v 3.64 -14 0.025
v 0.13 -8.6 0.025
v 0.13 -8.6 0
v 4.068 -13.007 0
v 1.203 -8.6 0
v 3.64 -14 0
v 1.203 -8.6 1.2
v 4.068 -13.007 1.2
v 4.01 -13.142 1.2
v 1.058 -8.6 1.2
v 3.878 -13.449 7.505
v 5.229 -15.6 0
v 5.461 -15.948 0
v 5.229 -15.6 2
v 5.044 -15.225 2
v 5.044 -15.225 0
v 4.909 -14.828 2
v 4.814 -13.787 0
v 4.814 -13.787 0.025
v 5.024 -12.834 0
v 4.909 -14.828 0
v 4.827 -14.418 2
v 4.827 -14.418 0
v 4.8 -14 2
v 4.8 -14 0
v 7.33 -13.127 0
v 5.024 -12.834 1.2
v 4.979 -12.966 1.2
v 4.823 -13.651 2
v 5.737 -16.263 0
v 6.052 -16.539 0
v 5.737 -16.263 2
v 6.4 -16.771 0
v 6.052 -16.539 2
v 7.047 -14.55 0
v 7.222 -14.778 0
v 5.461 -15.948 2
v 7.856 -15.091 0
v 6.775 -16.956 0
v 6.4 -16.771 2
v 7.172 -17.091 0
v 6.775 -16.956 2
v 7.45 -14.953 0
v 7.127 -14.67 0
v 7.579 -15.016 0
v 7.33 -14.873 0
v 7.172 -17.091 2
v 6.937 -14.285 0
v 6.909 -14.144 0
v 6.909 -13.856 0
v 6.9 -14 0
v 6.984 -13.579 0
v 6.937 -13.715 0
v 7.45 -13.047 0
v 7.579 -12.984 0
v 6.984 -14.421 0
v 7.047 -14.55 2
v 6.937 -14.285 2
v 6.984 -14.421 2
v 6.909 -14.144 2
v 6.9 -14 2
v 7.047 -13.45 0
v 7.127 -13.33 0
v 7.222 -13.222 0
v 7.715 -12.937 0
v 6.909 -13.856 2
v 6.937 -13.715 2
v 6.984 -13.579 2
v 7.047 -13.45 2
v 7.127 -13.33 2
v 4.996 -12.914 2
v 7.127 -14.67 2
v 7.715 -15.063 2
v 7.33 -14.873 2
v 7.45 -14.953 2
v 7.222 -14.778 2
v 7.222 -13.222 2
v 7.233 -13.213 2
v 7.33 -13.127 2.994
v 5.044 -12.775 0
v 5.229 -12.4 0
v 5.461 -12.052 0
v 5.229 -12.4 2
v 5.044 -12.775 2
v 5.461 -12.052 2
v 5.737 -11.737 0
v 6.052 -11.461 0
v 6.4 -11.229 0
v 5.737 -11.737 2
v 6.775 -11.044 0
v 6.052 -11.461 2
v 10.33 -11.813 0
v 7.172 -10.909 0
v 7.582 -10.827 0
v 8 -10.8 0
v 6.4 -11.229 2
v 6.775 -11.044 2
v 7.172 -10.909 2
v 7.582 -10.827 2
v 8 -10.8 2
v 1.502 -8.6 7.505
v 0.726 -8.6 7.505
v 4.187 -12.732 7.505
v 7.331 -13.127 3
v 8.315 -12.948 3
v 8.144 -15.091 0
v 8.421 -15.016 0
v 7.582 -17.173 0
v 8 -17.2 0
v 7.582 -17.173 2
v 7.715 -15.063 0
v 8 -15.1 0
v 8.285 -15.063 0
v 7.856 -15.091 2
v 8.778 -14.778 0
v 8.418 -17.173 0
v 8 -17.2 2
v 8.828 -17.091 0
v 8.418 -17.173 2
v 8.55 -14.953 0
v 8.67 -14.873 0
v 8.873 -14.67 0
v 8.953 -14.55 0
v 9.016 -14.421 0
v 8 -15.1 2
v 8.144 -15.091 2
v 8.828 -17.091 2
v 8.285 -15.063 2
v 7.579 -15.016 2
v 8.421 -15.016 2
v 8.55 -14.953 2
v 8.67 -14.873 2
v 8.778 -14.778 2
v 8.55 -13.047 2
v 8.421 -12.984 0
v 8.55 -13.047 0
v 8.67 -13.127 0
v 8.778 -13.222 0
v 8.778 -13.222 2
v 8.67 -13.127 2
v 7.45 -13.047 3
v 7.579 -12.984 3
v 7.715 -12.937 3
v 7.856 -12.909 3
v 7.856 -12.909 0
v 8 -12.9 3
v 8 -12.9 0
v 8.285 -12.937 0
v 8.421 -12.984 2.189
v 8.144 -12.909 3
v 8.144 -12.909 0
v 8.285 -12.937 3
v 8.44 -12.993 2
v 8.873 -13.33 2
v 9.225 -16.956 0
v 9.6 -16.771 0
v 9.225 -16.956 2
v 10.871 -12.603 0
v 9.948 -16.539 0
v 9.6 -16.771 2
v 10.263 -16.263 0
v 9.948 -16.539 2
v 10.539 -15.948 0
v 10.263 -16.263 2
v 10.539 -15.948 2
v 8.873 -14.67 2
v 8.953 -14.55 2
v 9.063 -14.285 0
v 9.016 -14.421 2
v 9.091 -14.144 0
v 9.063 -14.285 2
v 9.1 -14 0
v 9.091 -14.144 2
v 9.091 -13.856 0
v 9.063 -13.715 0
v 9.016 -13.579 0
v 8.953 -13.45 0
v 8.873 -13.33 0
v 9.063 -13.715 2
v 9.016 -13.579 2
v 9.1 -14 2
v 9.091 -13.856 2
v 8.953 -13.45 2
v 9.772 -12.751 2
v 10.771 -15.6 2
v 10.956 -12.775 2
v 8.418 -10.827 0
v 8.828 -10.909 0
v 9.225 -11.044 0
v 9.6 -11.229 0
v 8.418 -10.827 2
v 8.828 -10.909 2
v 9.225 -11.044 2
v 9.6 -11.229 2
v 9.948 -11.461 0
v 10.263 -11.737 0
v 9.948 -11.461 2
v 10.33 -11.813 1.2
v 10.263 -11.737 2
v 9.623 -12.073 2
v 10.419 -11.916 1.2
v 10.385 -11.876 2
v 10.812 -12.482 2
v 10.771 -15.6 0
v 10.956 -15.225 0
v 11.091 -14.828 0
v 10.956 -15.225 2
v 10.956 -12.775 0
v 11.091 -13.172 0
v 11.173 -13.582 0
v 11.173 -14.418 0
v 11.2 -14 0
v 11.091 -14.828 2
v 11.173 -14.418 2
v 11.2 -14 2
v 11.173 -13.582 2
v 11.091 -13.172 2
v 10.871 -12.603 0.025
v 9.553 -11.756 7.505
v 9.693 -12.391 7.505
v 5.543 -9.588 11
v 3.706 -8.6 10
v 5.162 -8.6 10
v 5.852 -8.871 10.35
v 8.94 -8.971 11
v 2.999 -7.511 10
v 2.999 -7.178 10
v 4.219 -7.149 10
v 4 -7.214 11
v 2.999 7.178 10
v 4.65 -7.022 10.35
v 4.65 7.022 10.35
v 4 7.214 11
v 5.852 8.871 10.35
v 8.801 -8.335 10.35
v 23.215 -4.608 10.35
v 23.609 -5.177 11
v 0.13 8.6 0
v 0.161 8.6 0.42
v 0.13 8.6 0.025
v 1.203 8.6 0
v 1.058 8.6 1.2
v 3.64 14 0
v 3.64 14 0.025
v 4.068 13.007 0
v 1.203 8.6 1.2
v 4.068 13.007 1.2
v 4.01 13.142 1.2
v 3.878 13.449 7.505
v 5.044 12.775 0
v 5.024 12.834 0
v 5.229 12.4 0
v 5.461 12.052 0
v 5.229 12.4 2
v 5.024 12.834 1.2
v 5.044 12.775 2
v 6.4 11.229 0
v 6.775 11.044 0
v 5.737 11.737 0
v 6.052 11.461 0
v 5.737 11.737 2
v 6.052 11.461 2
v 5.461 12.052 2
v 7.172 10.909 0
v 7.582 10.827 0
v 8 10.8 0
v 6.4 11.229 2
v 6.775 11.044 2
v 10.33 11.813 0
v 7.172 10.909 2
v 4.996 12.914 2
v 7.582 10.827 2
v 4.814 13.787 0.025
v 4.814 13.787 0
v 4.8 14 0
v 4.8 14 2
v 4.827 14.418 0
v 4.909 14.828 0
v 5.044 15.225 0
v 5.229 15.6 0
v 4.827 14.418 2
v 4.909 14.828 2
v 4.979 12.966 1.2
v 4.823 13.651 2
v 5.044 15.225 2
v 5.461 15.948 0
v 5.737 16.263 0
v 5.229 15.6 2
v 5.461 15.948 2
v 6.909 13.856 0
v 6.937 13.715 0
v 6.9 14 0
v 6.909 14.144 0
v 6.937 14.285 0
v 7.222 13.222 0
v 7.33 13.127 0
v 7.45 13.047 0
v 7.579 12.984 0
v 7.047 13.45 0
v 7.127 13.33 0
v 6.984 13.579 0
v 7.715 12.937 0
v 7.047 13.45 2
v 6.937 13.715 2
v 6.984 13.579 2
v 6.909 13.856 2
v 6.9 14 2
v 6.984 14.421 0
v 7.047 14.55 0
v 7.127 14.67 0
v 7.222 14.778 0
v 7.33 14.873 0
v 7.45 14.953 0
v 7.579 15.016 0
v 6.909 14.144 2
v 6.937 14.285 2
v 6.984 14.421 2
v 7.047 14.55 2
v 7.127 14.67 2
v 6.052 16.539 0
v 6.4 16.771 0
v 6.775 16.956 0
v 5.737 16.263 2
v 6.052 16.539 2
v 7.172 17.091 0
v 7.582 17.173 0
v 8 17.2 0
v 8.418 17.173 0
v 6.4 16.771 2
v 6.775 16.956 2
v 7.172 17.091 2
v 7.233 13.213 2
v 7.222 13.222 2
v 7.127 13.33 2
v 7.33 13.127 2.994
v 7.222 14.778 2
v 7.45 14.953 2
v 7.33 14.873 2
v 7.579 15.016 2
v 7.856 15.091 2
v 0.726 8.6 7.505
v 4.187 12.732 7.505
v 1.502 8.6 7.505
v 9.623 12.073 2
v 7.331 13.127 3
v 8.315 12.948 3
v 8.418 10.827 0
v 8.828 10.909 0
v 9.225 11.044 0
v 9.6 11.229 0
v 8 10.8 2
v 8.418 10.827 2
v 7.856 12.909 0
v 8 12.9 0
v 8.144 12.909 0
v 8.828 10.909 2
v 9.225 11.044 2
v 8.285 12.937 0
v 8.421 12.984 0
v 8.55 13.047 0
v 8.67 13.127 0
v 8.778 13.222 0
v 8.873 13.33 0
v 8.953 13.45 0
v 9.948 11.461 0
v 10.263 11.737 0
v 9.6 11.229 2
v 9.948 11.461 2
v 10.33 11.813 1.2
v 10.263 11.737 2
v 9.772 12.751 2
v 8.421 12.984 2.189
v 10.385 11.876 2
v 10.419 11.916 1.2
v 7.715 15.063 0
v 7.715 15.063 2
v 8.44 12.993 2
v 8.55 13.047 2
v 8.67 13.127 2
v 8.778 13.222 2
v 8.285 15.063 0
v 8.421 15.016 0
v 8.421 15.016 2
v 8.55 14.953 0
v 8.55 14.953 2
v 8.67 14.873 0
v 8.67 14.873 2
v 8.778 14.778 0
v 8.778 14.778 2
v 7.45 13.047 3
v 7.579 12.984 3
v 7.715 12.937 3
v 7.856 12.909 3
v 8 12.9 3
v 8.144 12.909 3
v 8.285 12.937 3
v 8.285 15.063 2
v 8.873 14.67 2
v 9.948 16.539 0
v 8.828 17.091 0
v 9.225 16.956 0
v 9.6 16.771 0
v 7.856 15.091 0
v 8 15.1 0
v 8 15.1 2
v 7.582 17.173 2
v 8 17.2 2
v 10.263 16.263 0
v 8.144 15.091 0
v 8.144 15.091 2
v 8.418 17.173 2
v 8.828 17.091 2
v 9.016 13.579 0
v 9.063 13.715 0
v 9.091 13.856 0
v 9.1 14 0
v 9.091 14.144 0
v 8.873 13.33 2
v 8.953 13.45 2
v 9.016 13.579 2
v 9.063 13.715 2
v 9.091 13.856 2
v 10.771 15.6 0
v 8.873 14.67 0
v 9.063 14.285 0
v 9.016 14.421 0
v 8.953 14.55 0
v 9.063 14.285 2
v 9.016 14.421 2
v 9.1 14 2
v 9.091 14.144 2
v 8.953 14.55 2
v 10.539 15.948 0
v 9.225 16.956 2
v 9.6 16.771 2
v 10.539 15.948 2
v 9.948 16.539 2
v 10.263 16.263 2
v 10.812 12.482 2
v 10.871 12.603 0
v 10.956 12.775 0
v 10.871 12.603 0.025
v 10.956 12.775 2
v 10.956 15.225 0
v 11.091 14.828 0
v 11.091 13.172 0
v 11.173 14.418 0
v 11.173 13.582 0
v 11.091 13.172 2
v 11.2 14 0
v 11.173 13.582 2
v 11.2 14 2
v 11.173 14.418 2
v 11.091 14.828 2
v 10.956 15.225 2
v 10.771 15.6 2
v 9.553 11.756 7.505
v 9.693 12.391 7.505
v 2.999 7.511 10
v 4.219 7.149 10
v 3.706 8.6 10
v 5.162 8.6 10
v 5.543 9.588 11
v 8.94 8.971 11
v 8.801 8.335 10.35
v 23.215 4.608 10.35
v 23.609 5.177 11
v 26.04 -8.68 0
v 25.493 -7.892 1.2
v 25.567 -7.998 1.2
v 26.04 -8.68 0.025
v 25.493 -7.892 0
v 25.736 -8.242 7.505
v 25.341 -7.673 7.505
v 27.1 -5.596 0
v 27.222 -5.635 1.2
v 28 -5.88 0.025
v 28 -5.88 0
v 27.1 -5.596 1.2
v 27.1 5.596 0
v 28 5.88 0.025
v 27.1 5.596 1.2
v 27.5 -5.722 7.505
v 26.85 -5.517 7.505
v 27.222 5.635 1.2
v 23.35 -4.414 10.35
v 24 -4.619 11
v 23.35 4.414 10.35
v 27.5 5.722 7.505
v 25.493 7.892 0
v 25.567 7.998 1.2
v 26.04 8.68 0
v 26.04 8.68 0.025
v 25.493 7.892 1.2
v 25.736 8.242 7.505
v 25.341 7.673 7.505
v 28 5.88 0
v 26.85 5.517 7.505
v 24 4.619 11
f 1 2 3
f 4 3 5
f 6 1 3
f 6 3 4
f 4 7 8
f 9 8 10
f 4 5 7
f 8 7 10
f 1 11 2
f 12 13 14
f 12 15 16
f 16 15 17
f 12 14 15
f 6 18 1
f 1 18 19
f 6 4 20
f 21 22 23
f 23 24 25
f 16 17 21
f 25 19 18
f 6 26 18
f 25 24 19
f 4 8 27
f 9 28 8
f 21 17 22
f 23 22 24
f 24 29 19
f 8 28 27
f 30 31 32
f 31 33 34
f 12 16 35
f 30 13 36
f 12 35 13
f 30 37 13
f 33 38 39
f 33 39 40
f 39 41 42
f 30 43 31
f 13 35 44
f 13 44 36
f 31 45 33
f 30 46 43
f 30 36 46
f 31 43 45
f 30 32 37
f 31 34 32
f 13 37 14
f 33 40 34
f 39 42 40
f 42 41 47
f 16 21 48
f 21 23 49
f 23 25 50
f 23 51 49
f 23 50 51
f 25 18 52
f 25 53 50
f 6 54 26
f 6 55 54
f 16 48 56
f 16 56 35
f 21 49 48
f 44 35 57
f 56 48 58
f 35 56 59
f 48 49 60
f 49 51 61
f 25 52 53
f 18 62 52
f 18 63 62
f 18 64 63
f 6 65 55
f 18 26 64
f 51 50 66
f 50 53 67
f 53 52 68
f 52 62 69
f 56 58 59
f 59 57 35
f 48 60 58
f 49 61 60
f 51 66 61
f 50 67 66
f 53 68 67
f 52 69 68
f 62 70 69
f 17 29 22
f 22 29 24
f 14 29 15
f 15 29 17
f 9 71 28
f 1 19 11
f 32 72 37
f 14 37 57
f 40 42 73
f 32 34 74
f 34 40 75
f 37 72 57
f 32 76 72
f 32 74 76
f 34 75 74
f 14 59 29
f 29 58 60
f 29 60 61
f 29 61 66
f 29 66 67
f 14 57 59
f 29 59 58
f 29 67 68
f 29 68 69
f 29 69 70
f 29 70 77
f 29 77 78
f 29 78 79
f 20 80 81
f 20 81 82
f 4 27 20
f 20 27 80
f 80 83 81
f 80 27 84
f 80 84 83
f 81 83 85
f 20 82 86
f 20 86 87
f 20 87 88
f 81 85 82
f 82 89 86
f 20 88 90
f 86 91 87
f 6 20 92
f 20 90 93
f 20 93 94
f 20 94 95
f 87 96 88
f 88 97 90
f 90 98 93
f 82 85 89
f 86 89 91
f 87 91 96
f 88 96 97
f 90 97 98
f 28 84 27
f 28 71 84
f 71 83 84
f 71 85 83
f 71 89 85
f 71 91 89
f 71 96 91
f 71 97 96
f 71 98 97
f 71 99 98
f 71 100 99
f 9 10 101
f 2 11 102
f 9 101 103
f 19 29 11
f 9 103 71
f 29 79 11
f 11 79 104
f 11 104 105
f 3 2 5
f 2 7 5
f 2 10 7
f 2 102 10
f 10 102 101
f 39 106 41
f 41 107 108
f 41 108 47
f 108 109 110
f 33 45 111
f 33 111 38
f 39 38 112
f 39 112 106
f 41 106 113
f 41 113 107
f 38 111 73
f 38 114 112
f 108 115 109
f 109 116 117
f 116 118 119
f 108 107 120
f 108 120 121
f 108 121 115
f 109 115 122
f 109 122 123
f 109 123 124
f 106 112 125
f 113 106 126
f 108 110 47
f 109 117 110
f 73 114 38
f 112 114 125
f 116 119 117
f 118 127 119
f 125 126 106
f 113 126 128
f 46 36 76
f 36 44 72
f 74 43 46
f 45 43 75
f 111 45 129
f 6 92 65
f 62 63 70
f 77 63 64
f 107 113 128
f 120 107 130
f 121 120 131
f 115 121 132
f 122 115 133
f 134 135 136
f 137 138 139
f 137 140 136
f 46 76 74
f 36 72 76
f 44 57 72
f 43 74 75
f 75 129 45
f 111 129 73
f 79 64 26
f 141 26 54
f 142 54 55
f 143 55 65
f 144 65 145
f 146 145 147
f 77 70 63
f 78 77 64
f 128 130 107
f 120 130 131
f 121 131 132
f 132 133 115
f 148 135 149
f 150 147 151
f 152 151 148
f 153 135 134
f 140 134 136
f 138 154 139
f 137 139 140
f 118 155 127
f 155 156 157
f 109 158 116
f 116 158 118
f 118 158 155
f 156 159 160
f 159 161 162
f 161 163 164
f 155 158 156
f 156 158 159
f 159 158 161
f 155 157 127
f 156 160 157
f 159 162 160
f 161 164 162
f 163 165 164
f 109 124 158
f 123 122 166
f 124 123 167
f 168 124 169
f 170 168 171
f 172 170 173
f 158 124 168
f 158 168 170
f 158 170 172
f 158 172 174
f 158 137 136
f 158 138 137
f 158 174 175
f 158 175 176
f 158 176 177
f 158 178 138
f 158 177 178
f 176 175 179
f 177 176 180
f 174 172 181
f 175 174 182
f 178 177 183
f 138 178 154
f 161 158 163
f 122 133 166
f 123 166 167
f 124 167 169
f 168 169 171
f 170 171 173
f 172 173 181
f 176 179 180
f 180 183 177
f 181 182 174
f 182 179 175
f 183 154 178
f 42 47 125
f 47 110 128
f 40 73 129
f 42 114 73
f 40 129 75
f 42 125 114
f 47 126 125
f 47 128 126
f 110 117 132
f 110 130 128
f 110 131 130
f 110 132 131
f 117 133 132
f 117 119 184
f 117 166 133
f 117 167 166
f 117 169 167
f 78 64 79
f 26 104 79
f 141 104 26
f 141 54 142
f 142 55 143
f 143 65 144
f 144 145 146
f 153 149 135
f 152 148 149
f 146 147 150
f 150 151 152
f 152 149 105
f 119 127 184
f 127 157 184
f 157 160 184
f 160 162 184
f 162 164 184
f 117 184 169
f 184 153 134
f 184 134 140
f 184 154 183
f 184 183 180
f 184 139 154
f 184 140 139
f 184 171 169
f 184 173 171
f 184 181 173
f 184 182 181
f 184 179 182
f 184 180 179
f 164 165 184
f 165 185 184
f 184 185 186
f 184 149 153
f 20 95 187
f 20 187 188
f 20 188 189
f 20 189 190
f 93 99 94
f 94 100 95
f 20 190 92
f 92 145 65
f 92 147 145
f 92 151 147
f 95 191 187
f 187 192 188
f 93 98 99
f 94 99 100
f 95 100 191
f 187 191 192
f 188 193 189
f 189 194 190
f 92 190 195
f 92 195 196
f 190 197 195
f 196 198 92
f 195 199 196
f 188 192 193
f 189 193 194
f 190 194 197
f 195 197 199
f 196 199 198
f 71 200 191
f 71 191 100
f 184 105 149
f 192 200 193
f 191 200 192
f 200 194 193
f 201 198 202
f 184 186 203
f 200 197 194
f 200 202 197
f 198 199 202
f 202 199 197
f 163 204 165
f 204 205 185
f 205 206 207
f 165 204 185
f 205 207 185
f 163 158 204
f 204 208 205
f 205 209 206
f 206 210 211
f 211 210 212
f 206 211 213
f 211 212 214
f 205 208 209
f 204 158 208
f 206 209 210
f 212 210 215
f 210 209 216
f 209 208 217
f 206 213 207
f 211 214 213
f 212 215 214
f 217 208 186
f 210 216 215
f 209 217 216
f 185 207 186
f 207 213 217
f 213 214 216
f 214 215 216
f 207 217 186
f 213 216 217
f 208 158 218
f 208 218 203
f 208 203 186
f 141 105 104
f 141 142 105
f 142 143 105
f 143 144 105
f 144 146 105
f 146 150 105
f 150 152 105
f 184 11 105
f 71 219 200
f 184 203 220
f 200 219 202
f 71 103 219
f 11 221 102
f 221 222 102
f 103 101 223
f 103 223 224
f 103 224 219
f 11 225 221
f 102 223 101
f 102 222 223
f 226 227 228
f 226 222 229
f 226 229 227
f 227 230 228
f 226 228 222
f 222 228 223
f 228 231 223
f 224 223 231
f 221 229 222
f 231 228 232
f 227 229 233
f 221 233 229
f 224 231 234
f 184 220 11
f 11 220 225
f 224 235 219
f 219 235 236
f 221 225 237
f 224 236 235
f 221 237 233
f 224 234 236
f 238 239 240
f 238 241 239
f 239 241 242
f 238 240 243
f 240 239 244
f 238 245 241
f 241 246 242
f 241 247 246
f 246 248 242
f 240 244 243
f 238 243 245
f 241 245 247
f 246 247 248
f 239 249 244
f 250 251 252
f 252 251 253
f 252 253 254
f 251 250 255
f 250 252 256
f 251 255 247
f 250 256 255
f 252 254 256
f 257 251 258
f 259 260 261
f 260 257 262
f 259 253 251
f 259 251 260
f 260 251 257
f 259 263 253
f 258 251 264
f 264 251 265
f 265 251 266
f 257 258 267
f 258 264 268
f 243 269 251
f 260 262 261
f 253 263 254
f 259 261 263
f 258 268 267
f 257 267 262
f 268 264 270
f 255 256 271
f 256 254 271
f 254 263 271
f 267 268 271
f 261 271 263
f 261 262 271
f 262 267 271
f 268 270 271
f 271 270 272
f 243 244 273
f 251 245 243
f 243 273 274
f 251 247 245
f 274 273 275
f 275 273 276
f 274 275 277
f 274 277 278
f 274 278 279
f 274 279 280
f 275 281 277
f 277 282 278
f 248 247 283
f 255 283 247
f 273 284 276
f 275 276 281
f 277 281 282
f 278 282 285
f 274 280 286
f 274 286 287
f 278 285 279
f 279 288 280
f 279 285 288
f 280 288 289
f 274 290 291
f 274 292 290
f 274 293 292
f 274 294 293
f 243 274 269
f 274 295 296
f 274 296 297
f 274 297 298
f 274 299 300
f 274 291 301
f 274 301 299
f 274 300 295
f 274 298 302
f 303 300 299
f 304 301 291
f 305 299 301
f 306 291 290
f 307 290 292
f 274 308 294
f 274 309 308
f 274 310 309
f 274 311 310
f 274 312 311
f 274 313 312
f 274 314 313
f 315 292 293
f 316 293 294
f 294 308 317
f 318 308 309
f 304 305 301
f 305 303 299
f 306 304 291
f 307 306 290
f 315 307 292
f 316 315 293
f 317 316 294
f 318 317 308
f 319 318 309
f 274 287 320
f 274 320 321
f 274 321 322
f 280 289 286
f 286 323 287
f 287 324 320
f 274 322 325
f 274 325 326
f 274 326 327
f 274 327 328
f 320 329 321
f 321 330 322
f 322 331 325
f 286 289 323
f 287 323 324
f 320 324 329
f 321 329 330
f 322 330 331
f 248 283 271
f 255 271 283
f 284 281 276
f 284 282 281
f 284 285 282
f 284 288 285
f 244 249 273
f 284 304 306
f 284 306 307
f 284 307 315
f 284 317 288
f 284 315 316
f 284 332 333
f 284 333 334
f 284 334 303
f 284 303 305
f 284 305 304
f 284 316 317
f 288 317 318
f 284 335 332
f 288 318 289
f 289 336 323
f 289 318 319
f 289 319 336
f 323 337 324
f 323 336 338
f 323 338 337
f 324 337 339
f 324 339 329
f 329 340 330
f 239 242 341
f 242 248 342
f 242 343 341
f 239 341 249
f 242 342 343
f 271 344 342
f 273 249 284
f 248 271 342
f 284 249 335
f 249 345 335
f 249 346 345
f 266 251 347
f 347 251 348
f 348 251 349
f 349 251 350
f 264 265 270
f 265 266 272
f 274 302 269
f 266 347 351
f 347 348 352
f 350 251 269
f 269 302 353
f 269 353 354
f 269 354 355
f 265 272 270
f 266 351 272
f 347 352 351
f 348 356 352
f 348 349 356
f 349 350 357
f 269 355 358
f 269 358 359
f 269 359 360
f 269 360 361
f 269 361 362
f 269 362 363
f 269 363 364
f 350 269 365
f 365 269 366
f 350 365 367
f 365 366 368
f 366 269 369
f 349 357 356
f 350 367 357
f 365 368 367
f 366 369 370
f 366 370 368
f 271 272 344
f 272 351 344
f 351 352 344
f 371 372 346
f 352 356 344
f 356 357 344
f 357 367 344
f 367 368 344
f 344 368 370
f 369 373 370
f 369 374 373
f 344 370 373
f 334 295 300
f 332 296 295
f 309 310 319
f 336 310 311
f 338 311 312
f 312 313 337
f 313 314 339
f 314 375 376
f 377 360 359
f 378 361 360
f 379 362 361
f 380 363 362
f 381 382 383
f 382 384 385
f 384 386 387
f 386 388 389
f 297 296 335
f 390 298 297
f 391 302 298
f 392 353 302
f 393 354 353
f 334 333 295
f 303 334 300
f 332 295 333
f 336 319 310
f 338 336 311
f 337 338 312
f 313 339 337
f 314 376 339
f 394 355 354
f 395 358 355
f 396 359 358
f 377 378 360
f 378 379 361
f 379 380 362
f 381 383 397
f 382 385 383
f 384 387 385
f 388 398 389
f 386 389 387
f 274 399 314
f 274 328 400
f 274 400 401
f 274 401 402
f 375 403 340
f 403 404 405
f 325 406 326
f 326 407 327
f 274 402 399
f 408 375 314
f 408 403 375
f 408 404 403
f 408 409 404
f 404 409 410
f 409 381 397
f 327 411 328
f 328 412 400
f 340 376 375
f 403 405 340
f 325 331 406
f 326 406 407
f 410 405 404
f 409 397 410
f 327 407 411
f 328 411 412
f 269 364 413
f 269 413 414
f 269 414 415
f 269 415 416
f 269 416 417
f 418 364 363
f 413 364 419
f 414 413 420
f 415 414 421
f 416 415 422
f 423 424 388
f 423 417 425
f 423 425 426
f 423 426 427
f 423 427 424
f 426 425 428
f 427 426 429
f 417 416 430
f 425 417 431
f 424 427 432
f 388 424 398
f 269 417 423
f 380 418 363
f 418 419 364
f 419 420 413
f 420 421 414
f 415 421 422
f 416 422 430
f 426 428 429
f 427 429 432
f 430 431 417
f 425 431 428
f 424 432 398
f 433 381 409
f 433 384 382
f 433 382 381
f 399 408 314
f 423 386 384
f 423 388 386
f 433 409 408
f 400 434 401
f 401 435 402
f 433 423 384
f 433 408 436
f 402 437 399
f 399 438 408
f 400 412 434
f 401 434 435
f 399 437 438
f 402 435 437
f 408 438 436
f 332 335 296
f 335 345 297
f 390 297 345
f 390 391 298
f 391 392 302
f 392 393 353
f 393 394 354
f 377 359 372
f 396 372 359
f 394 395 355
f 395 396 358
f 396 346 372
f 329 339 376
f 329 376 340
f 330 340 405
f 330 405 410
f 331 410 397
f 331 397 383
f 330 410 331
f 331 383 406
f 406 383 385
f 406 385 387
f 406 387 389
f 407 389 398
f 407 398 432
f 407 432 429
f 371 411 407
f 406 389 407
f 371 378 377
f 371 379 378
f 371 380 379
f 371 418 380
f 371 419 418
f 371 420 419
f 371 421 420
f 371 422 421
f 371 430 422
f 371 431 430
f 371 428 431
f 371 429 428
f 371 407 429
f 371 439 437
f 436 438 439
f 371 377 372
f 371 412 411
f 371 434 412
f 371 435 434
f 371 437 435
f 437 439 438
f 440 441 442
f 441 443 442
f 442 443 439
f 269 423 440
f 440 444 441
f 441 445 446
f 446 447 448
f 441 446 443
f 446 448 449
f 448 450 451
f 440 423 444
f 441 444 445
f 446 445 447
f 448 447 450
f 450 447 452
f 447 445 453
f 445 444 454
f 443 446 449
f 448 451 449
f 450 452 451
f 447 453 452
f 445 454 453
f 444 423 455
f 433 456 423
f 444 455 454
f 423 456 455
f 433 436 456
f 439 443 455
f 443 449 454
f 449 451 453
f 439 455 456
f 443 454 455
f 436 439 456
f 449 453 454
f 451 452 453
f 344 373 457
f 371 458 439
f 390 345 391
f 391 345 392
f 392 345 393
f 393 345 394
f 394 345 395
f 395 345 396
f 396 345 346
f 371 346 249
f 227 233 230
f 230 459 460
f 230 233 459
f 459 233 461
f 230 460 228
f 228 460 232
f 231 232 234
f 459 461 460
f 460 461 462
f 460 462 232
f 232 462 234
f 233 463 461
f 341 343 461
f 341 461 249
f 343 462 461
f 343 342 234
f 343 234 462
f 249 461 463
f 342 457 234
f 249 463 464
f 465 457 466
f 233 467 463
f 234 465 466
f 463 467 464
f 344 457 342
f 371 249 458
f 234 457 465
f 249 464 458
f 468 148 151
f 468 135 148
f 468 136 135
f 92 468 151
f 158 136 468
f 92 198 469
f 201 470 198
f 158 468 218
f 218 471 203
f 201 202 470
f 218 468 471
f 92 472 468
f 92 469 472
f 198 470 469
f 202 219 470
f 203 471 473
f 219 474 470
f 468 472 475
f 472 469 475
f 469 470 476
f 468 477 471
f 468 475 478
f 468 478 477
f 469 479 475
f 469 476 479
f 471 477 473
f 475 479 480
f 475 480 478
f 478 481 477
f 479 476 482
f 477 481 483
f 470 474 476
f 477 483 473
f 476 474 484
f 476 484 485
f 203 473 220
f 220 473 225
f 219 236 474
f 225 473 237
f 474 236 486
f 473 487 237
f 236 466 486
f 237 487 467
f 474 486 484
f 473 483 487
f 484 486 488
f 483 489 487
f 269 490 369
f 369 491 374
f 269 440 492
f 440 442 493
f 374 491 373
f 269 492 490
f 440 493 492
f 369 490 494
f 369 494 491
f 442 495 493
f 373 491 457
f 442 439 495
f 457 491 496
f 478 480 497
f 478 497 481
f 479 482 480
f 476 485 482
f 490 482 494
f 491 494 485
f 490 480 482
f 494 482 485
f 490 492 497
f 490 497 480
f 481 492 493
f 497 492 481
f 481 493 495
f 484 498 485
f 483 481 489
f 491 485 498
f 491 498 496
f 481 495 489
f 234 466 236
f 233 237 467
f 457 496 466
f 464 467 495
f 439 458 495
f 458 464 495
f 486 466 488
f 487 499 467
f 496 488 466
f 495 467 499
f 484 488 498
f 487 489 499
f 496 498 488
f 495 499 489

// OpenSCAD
// E88-style camera cover concept. Units are millimetres.
// Default dimensions are placeholders. Match the particular donor airframe.
// Coordinate origin: centre of the leading edge at the mounting plane.
// X runs towards the tail. Z runs upwards.

cover_length = 28;
shoulder_width = 28;
cover_height = 11;
wall = 0.65;
rim_wall = 0.90;
rim_height = 1.20;

// Set true to preview and export only the lower fit gauge.
fit_gauge = false;

// Clear opening centred on the original lens.
lens_width = 13;
lens_height = 8;
lens_center_y = 0;
lens_center_z = 5.5;

// Add holes only after measuring donor mounting points.
// Set to [[x, y], [x, y], ...] to enable mounting bosses with pilots.
mount_points = [];
pilot_diameter = 1.7;
boss_diameter = 5;
slice = 0.025;
$fn = 40;

module planform() {
    polygon([
        [0, -0.30 * shoulder_width],
        [0.13 * cover_length, -0.50 * shoulder_width],
        [0.35 * cover_length, -0.46 * shoulder_width],
        [0.93 * cover_length, -0.31 * shoulder_width],
        [cover_length, -0.21 * shoulder_width],
        [cover_length, 0.21 * shoulder_width],
        [0.93 * cover_length, 0.31 * shoulder_width],
        [0.35 * cover_length, 0.46 * shoulder_width],
        [0.13 * cover_length, 0.50 * shoulder_width],
        [0, 0.30 * shoulder_width]
    ]);
}

module section(z, inset) {
    translate([0, 0, z])
        linear_extrude(slice)
            offset(delta = -inset) planform();
}

module outer() {
    hull() {
        section(0, 0);
        section(0.68 * cover_height, 0.5);
        section(cover_height - slice, 4);
    }
}

module cavity() {
    hull() {
        section(-1, wall);
        section(0.68 * cover_height, 0.5 + wall);
        section(cover_height - wall - slice, 4 + wall);
    }
}

module lower_rim_cavity() {
    hull() {
        section(-1, rim_wall);
        section(rim_height + slice, rim_wall);
    }
}

module interior() {
    // Retain extra material in the short lower rim only.
    union() {
        intersection() { cavity(); lower_rim_cavity(); }
        intersection() {
            cavity();
            translate([-cover_length, -shoulder_width, rim_height])
                cube([3 * cover_length, 2 * shoulder_width, cover_height]);
        }
    }
}

module cover() {
    difference() {
        union() {
            difference() { outer(); interior(); }
            intersection() {
                outer();
                union() {
                    for (p = mount_points)
                        translate([p[0], p[1], 0])
                            cylinder(h = cover_height, d = boss_diameter);
                }
            }
        }
        // Flare the cut toward the front to reduce corner vignetting.
        hull() {
            translate([-1, lens_center_y - lens_width / 2 - 1.2,
                           lens_center_z - lens_height / 2 - 0.8])
                cube([slice, lens_width + 2.4, lens_height + 1.6]);
            translate([8, lens_center_y - lens_width / 2,
                       lens_center_z - lens_height / 2])
                cube([slice, lens_width, lens_height]);
        }
        for (p = mount_points)
            translate([p[0], p[1], -slice])
                cylinder(h = cover_height - wall, d = pilot_diameter);
    }
}

assert(cover_length > 20 && shoulder_width > 14 && cover_height > 5);
assert(wall > 0 && wall < 2);
assert(rim_wall >= wall && rim_height > 0 && rim_height < cover_height / 2);
assert(lens_center_z - lens_height / 2 - 0.8 > 0);
assert(lens_center_z + lens_height / 2 < cover_height - wall);
// V0.7 mounting ears and open-bottom front cut. Reference fit, not a measured lens.
module mounted_cover() {
  difference() {
    union() {
      difference() { cover(); translate([-1,-8.6,-1]) cube([9,17.2,11]); }
      for(y=[-14,14]) translate([8,y,0]) cylinder(h=2,d=6.4,$fn=48);
    }
    for(y=[-14,14]) translate([8,y,-1]) cylinder(h=4,d=2.2,$fn=48);
  }
}
if(fit_gauge) intersection() { mounted_cover(); translate([-20,-40,0]) cube([80,80,1.2]); }
else mounted_cover();
